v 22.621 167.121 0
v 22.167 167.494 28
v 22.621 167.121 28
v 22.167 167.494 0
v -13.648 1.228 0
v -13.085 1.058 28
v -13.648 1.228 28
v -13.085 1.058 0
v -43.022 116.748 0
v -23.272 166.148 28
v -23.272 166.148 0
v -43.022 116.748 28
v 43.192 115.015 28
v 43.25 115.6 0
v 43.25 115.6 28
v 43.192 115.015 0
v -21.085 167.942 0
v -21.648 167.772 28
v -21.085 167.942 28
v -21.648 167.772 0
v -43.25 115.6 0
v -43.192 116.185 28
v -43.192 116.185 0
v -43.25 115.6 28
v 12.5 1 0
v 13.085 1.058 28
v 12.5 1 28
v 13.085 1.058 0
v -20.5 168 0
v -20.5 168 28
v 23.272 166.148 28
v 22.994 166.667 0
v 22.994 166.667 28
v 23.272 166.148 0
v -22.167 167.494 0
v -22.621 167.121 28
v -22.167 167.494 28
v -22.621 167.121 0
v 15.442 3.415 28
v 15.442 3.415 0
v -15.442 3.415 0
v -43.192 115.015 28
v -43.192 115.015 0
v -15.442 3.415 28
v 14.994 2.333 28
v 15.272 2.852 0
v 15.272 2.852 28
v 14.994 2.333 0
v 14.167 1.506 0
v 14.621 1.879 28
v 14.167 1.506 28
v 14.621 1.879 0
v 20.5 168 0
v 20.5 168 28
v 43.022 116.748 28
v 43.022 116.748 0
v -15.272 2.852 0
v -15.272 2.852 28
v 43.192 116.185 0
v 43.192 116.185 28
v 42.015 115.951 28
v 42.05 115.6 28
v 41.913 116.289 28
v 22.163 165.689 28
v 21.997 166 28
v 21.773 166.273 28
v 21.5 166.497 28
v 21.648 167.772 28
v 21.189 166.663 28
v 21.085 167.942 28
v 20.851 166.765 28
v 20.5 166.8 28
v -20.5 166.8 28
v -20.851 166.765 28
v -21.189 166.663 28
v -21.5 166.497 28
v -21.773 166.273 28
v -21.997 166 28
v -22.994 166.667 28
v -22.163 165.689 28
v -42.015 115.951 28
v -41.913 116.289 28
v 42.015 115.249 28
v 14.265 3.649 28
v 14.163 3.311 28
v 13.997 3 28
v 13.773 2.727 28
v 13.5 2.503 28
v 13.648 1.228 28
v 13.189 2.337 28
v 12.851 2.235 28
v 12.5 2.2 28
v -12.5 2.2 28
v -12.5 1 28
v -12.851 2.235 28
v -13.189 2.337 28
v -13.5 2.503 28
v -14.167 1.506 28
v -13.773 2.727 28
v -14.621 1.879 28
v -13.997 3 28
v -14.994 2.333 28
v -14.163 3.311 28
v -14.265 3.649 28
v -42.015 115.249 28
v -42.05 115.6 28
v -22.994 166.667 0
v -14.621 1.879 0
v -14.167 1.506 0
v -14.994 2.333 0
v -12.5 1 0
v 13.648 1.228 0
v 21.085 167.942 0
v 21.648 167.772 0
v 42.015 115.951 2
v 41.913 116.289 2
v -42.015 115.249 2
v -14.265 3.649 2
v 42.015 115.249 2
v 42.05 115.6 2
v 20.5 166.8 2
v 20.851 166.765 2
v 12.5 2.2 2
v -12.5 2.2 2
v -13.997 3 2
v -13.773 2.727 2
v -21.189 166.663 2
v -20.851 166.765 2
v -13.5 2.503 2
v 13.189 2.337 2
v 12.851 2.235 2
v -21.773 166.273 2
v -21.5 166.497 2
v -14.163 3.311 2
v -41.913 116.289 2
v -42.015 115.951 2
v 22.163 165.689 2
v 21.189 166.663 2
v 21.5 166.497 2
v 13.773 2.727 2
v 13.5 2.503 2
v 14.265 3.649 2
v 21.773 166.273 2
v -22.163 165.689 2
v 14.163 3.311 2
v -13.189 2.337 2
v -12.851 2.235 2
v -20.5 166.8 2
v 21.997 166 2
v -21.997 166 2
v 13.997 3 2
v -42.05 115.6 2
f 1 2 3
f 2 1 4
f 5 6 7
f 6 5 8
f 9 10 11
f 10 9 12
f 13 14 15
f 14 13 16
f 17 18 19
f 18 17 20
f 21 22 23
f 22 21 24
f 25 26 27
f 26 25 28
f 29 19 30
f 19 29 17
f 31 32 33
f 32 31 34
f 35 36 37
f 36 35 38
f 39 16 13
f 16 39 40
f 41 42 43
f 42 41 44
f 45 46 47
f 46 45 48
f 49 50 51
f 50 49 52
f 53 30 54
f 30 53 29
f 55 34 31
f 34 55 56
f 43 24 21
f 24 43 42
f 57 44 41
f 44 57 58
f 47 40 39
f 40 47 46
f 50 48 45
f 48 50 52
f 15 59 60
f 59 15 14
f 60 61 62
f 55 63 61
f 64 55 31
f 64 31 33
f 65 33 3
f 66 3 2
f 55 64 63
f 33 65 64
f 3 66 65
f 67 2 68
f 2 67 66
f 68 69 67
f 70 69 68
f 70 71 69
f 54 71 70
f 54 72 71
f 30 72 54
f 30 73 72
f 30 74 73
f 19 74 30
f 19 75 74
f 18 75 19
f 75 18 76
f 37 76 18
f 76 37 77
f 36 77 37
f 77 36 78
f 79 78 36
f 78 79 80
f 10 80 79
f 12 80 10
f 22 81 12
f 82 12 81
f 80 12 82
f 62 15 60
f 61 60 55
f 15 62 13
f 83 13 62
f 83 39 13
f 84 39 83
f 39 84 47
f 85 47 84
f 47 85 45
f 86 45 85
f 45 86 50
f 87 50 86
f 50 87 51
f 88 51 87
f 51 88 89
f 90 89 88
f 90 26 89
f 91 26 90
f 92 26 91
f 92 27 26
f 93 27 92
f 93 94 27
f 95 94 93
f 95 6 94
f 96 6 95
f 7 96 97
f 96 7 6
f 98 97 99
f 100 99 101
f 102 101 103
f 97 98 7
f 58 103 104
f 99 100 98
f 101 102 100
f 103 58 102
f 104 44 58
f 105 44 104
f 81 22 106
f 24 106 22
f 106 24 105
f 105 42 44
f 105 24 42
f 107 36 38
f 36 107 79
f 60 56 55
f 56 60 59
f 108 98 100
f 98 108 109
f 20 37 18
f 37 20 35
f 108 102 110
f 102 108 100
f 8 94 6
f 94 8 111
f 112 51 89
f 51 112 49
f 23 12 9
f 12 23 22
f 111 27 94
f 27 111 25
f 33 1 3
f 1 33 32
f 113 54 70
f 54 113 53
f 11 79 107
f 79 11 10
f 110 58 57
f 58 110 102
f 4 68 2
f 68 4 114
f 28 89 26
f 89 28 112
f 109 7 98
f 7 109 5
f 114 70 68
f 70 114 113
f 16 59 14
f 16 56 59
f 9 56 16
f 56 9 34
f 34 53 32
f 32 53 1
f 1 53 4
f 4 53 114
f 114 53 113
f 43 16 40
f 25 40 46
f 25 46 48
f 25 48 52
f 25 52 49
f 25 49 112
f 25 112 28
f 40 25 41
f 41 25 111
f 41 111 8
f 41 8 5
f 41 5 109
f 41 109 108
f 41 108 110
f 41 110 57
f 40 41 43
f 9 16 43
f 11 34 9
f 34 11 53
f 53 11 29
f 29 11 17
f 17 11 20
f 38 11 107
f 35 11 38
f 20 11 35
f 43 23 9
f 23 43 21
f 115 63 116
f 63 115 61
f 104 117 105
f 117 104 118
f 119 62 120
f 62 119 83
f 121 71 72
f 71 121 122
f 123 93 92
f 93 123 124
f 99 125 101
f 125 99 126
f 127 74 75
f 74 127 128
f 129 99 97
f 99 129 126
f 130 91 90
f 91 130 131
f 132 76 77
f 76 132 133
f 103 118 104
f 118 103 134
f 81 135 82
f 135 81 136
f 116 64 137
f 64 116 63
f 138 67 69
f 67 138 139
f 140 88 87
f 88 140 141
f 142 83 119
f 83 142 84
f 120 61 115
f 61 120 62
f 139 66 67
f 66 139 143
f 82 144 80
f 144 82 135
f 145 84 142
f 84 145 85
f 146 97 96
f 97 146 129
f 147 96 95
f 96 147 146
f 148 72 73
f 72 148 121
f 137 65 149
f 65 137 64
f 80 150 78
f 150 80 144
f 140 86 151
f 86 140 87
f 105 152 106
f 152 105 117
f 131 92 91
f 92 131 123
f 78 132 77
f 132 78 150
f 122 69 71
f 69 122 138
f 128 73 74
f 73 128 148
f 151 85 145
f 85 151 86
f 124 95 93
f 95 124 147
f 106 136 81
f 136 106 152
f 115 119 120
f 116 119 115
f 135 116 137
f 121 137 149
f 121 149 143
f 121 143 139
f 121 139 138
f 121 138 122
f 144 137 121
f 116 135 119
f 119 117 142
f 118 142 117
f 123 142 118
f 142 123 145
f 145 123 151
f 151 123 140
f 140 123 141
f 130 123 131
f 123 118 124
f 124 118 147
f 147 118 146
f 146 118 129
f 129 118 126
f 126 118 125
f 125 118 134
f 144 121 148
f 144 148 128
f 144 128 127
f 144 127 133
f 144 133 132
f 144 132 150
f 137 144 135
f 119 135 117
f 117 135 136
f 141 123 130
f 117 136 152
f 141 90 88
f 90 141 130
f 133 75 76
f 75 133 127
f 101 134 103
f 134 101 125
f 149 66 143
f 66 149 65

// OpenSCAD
r=3;
margin = 1;
points=[
	[49/2  -r-margin, 169  -r-margin], 
	[88.5/2-r-margin, 115.6 ],
	[33/2  -r-margin, 0    +r+margin]];
h=28;

difference() {
	base(r);
	translate([0,0,2]) 
		base(r-1.2);
}

module base(r) {
	hull() 
		for (i=[0:2]) {
			x=points[i][0];
			y=points[i][1];
			translate([x,y,0])
				cylinder(h,r,r,$fn=32);
			translate([-x,y,0])
				cylinder(h,r,r,$fn=32);
		}
}
